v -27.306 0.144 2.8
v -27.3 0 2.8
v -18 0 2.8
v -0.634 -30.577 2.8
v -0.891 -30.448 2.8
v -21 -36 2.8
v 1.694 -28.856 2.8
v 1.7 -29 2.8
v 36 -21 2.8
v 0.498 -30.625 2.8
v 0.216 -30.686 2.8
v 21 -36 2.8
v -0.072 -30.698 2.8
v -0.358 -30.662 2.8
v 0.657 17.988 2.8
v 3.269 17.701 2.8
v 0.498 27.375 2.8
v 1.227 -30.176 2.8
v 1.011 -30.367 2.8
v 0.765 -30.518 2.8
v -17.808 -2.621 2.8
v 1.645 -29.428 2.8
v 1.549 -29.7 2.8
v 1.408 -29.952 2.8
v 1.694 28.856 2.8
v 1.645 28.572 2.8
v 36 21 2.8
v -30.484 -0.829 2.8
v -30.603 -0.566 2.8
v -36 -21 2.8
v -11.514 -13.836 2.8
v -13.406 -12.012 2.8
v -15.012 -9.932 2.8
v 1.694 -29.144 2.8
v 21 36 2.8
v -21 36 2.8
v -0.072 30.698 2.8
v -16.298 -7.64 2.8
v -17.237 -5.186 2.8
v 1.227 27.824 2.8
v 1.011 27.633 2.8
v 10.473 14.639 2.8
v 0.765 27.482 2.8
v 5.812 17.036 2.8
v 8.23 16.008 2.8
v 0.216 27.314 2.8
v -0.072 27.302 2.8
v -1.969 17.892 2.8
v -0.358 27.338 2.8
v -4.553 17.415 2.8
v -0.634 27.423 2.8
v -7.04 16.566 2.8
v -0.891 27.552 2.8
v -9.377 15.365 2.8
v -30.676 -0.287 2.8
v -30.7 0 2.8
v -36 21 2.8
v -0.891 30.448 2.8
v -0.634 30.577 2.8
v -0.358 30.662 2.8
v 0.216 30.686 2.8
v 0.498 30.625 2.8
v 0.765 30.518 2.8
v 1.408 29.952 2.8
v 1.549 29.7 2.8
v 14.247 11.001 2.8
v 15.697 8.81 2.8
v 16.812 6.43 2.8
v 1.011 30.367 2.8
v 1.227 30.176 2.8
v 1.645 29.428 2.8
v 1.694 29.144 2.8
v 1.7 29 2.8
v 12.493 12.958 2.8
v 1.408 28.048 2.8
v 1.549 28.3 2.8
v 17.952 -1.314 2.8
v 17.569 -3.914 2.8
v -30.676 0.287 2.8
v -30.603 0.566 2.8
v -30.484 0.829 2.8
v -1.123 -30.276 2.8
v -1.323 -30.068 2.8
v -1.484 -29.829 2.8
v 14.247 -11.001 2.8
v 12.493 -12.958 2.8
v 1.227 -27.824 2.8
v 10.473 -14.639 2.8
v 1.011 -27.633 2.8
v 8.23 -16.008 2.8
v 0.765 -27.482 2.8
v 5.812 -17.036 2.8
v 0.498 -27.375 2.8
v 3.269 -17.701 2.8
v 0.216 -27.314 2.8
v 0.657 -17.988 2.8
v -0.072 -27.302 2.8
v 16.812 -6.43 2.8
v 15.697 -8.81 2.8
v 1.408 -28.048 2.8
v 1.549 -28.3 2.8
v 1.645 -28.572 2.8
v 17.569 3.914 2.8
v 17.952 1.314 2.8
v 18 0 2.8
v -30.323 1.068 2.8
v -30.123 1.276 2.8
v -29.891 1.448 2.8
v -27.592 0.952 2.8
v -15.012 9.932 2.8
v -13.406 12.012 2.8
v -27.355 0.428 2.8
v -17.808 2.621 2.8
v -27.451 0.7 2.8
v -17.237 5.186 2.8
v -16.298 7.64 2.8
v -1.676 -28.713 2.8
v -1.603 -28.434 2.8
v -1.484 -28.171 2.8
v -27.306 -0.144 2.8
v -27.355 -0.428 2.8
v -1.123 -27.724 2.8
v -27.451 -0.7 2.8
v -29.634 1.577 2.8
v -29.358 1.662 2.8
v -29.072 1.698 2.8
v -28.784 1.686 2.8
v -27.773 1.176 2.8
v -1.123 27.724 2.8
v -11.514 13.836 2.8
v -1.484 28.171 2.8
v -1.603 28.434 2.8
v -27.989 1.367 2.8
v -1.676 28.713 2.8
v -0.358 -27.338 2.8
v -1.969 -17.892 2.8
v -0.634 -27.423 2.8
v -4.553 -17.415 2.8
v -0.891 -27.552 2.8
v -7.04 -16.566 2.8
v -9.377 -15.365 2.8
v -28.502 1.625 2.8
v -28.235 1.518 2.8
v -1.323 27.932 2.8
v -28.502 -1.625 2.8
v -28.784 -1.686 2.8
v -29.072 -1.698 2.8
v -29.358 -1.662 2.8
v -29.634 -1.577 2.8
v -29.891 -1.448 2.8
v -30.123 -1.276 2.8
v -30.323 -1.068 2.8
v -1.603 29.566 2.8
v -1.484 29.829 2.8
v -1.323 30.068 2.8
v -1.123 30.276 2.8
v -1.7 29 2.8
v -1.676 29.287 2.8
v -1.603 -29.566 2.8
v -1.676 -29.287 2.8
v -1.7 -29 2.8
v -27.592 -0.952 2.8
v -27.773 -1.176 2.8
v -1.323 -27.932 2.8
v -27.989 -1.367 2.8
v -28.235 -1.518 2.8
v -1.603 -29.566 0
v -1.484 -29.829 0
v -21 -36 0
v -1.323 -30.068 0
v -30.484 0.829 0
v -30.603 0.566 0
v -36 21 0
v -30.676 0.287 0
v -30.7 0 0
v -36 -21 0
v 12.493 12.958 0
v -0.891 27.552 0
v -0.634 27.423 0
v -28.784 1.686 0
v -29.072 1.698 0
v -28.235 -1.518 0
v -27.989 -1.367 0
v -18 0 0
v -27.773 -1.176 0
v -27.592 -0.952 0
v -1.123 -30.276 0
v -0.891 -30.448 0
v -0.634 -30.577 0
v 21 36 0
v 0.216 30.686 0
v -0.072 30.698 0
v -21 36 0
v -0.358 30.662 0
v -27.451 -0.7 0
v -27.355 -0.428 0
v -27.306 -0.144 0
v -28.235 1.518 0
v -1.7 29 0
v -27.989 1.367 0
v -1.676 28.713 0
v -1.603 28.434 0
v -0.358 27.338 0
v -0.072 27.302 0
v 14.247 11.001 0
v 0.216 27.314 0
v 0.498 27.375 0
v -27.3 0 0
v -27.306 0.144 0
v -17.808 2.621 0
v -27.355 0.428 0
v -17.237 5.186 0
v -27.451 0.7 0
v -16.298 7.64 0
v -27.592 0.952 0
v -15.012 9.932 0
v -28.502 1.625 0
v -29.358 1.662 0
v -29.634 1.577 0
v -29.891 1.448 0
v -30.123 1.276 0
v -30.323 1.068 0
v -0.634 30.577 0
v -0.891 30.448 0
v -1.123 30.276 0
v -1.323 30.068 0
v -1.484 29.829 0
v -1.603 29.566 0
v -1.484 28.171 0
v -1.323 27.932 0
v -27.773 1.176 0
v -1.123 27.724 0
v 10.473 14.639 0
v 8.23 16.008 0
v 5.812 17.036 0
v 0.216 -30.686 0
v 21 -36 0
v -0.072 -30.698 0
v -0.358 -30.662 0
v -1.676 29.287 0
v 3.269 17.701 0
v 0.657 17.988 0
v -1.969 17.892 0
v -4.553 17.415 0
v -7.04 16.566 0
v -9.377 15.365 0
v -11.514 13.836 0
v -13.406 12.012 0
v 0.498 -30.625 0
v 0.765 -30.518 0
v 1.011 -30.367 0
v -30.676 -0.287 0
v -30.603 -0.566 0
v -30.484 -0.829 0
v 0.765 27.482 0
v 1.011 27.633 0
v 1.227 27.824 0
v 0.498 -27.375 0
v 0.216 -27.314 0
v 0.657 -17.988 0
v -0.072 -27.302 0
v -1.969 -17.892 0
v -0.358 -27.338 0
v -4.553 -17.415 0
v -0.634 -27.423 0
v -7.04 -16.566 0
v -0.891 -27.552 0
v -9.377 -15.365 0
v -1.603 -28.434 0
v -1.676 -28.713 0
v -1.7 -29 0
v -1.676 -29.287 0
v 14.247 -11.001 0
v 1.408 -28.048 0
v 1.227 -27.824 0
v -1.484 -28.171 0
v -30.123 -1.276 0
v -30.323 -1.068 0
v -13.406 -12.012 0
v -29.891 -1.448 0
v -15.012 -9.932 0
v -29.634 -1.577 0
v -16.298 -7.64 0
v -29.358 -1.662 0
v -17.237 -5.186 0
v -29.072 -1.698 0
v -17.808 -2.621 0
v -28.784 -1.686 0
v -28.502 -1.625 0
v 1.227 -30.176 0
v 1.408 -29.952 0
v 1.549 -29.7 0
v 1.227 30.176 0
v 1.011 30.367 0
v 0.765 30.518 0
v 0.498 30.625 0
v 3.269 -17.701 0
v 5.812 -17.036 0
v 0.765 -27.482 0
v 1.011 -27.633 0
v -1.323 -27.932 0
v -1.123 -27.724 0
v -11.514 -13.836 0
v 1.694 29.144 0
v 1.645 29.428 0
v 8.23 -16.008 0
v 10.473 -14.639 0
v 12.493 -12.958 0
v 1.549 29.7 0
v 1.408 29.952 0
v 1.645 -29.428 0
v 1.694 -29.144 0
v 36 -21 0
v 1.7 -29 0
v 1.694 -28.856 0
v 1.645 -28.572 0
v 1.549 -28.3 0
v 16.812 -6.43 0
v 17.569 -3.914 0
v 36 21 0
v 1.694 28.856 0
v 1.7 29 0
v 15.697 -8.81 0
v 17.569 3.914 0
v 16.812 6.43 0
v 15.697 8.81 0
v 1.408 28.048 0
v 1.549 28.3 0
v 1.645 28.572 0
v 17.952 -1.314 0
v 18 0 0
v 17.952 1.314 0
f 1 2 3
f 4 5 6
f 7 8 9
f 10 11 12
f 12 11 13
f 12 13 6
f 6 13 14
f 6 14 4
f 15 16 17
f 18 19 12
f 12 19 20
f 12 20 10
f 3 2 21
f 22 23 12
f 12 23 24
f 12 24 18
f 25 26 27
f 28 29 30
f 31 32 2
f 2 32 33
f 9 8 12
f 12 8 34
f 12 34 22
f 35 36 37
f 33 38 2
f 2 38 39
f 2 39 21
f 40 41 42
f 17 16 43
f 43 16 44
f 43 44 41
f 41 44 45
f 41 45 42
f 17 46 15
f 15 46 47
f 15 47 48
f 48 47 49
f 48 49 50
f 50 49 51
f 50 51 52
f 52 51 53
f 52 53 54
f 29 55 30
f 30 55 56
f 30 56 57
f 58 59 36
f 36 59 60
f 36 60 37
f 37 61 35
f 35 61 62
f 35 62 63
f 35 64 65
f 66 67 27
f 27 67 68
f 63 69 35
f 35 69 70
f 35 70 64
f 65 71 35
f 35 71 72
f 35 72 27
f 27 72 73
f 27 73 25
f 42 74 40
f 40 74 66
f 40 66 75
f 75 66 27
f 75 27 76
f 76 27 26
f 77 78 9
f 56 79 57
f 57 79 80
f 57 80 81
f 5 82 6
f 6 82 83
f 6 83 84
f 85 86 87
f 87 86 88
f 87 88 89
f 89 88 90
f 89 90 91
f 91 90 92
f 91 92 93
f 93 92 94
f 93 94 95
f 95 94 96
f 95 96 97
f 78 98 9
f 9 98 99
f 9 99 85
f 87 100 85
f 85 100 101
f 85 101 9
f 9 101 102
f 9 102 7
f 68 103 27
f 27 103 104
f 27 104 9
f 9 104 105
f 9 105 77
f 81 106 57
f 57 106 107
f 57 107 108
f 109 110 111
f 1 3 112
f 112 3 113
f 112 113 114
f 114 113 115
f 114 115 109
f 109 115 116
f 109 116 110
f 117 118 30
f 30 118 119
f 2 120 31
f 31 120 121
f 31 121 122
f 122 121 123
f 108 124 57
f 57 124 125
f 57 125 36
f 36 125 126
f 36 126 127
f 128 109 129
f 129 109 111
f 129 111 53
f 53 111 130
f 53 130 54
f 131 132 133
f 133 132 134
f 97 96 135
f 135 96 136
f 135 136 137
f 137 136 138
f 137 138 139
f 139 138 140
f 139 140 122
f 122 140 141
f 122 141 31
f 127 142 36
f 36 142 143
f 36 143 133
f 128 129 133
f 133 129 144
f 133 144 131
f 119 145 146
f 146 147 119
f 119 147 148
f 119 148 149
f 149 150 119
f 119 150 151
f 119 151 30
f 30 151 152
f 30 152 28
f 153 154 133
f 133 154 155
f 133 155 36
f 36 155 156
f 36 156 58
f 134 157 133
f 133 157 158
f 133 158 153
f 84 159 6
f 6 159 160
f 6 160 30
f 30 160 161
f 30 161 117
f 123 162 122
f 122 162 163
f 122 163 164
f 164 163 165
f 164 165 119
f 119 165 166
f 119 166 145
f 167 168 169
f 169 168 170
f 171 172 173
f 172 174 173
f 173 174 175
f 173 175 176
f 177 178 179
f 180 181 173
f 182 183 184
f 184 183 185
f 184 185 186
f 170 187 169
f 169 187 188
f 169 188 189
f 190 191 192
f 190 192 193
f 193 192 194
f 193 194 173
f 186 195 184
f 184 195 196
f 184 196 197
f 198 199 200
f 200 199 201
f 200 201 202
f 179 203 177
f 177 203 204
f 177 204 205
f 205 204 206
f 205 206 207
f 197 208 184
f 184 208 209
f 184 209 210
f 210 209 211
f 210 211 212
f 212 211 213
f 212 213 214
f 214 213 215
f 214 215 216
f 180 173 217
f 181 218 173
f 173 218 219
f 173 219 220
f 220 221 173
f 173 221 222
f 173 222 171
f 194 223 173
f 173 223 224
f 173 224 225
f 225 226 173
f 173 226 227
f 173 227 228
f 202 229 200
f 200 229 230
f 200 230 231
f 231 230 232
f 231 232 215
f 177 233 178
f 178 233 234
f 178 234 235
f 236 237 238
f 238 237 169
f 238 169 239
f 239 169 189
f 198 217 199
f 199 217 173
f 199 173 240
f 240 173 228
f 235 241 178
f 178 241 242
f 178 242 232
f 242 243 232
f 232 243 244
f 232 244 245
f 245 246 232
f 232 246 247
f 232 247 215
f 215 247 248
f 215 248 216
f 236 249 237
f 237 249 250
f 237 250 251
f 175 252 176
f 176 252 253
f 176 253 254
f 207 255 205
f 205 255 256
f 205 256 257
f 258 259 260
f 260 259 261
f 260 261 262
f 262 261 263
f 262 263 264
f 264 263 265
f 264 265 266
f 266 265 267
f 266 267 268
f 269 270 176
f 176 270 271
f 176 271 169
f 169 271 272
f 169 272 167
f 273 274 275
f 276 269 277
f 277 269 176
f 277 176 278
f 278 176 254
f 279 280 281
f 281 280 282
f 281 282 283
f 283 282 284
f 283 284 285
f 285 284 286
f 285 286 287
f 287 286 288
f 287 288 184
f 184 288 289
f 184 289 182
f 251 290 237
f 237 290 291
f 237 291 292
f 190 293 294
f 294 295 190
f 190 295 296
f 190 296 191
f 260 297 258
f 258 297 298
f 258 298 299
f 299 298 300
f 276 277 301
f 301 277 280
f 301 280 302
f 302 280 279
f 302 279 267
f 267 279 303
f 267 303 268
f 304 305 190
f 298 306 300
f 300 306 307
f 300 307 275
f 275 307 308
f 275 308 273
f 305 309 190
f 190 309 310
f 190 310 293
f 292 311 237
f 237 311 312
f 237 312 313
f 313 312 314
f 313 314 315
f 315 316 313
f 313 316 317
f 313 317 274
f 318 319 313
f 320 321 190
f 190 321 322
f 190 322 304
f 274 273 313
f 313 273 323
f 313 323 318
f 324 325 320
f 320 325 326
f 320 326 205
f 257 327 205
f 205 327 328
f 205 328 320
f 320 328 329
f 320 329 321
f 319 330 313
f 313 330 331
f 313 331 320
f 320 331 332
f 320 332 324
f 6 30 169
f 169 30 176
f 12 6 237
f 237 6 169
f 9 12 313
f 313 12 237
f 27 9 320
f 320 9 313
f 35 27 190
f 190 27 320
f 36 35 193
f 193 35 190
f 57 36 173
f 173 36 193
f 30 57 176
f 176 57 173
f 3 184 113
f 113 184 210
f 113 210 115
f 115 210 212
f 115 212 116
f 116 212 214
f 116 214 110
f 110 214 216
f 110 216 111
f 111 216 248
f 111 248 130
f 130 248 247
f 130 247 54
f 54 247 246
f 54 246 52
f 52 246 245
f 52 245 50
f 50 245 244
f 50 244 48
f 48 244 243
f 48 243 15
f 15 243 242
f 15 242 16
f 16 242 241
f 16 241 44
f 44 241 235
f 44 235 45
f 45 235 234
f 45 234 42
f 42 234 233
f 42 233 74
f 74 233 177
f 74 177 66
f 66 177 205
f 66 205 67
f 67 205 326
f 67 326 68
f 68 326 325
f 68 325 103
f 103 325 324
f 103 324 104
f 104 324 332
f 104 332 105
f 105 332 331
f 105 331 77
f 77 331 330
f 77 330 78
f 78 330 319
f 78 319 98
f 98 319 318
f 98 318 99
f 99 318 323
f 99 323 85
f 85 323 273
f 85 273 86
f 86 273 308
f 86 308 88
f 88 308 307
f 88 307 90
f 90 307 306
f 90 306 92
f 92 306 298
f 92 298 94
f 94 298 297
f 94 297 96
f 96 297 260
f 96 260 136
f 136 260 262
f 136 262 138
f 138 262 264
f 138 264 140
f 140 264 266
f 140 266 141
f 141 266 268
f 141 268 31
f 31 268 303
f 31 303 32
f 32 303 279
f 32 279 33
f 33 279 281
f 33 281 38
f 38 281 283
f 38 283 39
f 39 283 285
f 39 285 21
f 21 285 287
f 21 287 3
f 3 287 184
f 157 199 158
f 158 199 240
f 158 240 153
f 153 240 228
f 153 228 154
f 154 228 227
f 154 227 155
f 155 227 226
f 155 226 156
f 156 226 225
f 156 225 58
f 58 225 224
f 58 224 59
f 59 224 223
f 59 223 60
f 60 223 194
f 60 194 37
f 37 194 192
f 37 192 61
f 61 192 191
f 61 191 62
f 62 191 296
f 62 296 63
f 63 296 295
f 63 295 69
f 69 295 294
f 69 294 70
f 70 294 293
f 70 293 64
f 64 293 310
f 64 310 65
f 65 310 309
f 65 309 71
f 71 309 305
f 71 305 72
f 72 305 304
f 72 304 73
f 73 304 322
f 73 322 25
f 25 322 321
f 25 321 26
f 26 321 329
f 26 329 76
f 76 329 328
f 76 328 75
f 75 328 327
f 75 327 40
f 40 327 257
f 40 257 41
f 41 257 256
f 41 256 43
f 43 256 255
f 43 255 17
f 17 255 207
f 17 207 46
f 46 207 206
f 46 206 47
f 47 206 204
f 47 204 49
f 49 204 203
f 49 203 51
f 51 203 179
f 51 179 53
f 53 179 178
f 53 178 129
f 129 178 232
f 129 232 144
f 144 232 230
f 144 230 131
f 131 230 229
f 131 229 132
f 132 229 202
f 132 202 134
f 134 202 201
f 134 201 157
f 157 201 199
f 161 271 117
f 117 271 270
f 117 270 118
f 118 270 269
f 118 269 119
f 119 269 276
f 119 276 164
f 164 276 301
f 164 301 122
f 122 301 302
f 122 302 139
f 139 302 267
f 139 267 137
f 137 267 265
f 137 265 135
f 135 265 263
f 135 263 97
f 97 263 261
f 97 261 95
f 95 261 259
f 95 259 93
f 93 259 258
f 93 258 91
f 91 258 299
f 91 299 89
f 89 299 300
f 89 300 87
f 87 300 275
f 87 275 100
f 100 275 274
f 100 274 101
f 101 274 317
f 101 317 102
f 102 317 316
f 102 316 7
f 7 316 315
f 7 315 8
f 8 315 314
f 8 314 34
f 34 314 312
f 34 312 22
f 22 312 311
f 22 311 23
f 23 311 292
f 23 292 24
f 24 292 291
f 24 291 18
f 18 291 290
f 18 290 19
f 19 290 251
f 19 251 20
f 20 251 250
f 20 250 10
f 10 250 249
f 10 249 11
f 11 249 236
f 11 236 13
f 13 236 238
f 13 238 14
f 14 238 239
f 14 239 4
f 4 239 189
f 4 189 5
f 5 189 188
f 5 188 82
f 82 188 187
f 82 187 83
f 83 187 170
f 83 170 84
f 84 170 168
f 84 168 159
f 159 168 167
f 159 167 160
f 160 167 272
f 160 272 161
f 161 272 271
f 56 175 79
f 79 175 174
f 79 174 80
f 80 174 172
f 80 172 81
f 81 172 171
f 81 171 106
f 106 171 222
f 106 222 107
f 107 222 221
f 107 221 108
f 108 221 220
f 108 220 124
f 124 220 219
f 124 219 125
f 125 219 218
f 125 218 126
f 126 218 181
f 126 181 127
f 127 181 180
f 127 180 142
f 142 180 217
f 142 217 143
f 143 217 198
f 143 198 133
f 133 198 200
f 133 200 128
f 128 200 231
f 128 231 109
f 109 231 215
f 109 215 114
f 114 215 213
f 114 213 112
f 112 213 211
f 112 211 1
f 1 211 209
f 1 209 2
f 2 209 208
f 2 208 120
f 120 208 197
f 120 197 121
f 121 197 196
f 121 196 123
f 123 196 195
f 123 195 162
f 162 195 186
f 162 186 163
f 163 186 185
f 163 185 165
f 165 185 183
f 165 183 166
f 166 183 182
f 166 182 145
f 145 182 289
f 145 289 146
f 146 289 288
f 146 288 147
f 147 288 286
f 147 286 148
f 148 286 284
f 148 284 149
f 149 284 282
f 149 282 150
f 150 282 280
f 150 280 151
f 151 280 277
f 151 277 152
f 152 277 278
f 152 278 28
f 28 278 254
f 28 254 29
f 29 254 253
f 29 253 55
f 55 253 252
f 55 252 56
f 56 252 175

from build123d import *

# Parameters (mm, degrees)
SKETCH_1_R                  = 18
SKETCH_1_R_2                = 1.7
F_04_BEARING_RETAINER_DEPTH = 2.8


with BuildPart() as part:
    # Эскиз1 → 04_Bearing_retainer (new body)
    with BuildSketch(Plane.XY):
        Polygon((-21, -36), (21, -36), (36, -21), (36, 21), (21, 36), (-21, 36), (-36, 21), (-36, -21), align=None)
        Circle(SKETCH_1_R, mode=Mode.SUBTRACT)
        with Locations((0, 29)):
            Circle(SKETCH_1_R_2, mode=Mode.SUBTRACT)
        with Locations((0, -29)):
            Circle(SKETCH_1_R_2, mode=Mode.SUBTRACT)
        with Locations((-29, 0)):
            Circle(SKETCH_1_R_2, mode=Mode.SUBTRACT)
    extrude(amount=F_04_BEARING_RETAINER_DEPTH)


solid = part.part
